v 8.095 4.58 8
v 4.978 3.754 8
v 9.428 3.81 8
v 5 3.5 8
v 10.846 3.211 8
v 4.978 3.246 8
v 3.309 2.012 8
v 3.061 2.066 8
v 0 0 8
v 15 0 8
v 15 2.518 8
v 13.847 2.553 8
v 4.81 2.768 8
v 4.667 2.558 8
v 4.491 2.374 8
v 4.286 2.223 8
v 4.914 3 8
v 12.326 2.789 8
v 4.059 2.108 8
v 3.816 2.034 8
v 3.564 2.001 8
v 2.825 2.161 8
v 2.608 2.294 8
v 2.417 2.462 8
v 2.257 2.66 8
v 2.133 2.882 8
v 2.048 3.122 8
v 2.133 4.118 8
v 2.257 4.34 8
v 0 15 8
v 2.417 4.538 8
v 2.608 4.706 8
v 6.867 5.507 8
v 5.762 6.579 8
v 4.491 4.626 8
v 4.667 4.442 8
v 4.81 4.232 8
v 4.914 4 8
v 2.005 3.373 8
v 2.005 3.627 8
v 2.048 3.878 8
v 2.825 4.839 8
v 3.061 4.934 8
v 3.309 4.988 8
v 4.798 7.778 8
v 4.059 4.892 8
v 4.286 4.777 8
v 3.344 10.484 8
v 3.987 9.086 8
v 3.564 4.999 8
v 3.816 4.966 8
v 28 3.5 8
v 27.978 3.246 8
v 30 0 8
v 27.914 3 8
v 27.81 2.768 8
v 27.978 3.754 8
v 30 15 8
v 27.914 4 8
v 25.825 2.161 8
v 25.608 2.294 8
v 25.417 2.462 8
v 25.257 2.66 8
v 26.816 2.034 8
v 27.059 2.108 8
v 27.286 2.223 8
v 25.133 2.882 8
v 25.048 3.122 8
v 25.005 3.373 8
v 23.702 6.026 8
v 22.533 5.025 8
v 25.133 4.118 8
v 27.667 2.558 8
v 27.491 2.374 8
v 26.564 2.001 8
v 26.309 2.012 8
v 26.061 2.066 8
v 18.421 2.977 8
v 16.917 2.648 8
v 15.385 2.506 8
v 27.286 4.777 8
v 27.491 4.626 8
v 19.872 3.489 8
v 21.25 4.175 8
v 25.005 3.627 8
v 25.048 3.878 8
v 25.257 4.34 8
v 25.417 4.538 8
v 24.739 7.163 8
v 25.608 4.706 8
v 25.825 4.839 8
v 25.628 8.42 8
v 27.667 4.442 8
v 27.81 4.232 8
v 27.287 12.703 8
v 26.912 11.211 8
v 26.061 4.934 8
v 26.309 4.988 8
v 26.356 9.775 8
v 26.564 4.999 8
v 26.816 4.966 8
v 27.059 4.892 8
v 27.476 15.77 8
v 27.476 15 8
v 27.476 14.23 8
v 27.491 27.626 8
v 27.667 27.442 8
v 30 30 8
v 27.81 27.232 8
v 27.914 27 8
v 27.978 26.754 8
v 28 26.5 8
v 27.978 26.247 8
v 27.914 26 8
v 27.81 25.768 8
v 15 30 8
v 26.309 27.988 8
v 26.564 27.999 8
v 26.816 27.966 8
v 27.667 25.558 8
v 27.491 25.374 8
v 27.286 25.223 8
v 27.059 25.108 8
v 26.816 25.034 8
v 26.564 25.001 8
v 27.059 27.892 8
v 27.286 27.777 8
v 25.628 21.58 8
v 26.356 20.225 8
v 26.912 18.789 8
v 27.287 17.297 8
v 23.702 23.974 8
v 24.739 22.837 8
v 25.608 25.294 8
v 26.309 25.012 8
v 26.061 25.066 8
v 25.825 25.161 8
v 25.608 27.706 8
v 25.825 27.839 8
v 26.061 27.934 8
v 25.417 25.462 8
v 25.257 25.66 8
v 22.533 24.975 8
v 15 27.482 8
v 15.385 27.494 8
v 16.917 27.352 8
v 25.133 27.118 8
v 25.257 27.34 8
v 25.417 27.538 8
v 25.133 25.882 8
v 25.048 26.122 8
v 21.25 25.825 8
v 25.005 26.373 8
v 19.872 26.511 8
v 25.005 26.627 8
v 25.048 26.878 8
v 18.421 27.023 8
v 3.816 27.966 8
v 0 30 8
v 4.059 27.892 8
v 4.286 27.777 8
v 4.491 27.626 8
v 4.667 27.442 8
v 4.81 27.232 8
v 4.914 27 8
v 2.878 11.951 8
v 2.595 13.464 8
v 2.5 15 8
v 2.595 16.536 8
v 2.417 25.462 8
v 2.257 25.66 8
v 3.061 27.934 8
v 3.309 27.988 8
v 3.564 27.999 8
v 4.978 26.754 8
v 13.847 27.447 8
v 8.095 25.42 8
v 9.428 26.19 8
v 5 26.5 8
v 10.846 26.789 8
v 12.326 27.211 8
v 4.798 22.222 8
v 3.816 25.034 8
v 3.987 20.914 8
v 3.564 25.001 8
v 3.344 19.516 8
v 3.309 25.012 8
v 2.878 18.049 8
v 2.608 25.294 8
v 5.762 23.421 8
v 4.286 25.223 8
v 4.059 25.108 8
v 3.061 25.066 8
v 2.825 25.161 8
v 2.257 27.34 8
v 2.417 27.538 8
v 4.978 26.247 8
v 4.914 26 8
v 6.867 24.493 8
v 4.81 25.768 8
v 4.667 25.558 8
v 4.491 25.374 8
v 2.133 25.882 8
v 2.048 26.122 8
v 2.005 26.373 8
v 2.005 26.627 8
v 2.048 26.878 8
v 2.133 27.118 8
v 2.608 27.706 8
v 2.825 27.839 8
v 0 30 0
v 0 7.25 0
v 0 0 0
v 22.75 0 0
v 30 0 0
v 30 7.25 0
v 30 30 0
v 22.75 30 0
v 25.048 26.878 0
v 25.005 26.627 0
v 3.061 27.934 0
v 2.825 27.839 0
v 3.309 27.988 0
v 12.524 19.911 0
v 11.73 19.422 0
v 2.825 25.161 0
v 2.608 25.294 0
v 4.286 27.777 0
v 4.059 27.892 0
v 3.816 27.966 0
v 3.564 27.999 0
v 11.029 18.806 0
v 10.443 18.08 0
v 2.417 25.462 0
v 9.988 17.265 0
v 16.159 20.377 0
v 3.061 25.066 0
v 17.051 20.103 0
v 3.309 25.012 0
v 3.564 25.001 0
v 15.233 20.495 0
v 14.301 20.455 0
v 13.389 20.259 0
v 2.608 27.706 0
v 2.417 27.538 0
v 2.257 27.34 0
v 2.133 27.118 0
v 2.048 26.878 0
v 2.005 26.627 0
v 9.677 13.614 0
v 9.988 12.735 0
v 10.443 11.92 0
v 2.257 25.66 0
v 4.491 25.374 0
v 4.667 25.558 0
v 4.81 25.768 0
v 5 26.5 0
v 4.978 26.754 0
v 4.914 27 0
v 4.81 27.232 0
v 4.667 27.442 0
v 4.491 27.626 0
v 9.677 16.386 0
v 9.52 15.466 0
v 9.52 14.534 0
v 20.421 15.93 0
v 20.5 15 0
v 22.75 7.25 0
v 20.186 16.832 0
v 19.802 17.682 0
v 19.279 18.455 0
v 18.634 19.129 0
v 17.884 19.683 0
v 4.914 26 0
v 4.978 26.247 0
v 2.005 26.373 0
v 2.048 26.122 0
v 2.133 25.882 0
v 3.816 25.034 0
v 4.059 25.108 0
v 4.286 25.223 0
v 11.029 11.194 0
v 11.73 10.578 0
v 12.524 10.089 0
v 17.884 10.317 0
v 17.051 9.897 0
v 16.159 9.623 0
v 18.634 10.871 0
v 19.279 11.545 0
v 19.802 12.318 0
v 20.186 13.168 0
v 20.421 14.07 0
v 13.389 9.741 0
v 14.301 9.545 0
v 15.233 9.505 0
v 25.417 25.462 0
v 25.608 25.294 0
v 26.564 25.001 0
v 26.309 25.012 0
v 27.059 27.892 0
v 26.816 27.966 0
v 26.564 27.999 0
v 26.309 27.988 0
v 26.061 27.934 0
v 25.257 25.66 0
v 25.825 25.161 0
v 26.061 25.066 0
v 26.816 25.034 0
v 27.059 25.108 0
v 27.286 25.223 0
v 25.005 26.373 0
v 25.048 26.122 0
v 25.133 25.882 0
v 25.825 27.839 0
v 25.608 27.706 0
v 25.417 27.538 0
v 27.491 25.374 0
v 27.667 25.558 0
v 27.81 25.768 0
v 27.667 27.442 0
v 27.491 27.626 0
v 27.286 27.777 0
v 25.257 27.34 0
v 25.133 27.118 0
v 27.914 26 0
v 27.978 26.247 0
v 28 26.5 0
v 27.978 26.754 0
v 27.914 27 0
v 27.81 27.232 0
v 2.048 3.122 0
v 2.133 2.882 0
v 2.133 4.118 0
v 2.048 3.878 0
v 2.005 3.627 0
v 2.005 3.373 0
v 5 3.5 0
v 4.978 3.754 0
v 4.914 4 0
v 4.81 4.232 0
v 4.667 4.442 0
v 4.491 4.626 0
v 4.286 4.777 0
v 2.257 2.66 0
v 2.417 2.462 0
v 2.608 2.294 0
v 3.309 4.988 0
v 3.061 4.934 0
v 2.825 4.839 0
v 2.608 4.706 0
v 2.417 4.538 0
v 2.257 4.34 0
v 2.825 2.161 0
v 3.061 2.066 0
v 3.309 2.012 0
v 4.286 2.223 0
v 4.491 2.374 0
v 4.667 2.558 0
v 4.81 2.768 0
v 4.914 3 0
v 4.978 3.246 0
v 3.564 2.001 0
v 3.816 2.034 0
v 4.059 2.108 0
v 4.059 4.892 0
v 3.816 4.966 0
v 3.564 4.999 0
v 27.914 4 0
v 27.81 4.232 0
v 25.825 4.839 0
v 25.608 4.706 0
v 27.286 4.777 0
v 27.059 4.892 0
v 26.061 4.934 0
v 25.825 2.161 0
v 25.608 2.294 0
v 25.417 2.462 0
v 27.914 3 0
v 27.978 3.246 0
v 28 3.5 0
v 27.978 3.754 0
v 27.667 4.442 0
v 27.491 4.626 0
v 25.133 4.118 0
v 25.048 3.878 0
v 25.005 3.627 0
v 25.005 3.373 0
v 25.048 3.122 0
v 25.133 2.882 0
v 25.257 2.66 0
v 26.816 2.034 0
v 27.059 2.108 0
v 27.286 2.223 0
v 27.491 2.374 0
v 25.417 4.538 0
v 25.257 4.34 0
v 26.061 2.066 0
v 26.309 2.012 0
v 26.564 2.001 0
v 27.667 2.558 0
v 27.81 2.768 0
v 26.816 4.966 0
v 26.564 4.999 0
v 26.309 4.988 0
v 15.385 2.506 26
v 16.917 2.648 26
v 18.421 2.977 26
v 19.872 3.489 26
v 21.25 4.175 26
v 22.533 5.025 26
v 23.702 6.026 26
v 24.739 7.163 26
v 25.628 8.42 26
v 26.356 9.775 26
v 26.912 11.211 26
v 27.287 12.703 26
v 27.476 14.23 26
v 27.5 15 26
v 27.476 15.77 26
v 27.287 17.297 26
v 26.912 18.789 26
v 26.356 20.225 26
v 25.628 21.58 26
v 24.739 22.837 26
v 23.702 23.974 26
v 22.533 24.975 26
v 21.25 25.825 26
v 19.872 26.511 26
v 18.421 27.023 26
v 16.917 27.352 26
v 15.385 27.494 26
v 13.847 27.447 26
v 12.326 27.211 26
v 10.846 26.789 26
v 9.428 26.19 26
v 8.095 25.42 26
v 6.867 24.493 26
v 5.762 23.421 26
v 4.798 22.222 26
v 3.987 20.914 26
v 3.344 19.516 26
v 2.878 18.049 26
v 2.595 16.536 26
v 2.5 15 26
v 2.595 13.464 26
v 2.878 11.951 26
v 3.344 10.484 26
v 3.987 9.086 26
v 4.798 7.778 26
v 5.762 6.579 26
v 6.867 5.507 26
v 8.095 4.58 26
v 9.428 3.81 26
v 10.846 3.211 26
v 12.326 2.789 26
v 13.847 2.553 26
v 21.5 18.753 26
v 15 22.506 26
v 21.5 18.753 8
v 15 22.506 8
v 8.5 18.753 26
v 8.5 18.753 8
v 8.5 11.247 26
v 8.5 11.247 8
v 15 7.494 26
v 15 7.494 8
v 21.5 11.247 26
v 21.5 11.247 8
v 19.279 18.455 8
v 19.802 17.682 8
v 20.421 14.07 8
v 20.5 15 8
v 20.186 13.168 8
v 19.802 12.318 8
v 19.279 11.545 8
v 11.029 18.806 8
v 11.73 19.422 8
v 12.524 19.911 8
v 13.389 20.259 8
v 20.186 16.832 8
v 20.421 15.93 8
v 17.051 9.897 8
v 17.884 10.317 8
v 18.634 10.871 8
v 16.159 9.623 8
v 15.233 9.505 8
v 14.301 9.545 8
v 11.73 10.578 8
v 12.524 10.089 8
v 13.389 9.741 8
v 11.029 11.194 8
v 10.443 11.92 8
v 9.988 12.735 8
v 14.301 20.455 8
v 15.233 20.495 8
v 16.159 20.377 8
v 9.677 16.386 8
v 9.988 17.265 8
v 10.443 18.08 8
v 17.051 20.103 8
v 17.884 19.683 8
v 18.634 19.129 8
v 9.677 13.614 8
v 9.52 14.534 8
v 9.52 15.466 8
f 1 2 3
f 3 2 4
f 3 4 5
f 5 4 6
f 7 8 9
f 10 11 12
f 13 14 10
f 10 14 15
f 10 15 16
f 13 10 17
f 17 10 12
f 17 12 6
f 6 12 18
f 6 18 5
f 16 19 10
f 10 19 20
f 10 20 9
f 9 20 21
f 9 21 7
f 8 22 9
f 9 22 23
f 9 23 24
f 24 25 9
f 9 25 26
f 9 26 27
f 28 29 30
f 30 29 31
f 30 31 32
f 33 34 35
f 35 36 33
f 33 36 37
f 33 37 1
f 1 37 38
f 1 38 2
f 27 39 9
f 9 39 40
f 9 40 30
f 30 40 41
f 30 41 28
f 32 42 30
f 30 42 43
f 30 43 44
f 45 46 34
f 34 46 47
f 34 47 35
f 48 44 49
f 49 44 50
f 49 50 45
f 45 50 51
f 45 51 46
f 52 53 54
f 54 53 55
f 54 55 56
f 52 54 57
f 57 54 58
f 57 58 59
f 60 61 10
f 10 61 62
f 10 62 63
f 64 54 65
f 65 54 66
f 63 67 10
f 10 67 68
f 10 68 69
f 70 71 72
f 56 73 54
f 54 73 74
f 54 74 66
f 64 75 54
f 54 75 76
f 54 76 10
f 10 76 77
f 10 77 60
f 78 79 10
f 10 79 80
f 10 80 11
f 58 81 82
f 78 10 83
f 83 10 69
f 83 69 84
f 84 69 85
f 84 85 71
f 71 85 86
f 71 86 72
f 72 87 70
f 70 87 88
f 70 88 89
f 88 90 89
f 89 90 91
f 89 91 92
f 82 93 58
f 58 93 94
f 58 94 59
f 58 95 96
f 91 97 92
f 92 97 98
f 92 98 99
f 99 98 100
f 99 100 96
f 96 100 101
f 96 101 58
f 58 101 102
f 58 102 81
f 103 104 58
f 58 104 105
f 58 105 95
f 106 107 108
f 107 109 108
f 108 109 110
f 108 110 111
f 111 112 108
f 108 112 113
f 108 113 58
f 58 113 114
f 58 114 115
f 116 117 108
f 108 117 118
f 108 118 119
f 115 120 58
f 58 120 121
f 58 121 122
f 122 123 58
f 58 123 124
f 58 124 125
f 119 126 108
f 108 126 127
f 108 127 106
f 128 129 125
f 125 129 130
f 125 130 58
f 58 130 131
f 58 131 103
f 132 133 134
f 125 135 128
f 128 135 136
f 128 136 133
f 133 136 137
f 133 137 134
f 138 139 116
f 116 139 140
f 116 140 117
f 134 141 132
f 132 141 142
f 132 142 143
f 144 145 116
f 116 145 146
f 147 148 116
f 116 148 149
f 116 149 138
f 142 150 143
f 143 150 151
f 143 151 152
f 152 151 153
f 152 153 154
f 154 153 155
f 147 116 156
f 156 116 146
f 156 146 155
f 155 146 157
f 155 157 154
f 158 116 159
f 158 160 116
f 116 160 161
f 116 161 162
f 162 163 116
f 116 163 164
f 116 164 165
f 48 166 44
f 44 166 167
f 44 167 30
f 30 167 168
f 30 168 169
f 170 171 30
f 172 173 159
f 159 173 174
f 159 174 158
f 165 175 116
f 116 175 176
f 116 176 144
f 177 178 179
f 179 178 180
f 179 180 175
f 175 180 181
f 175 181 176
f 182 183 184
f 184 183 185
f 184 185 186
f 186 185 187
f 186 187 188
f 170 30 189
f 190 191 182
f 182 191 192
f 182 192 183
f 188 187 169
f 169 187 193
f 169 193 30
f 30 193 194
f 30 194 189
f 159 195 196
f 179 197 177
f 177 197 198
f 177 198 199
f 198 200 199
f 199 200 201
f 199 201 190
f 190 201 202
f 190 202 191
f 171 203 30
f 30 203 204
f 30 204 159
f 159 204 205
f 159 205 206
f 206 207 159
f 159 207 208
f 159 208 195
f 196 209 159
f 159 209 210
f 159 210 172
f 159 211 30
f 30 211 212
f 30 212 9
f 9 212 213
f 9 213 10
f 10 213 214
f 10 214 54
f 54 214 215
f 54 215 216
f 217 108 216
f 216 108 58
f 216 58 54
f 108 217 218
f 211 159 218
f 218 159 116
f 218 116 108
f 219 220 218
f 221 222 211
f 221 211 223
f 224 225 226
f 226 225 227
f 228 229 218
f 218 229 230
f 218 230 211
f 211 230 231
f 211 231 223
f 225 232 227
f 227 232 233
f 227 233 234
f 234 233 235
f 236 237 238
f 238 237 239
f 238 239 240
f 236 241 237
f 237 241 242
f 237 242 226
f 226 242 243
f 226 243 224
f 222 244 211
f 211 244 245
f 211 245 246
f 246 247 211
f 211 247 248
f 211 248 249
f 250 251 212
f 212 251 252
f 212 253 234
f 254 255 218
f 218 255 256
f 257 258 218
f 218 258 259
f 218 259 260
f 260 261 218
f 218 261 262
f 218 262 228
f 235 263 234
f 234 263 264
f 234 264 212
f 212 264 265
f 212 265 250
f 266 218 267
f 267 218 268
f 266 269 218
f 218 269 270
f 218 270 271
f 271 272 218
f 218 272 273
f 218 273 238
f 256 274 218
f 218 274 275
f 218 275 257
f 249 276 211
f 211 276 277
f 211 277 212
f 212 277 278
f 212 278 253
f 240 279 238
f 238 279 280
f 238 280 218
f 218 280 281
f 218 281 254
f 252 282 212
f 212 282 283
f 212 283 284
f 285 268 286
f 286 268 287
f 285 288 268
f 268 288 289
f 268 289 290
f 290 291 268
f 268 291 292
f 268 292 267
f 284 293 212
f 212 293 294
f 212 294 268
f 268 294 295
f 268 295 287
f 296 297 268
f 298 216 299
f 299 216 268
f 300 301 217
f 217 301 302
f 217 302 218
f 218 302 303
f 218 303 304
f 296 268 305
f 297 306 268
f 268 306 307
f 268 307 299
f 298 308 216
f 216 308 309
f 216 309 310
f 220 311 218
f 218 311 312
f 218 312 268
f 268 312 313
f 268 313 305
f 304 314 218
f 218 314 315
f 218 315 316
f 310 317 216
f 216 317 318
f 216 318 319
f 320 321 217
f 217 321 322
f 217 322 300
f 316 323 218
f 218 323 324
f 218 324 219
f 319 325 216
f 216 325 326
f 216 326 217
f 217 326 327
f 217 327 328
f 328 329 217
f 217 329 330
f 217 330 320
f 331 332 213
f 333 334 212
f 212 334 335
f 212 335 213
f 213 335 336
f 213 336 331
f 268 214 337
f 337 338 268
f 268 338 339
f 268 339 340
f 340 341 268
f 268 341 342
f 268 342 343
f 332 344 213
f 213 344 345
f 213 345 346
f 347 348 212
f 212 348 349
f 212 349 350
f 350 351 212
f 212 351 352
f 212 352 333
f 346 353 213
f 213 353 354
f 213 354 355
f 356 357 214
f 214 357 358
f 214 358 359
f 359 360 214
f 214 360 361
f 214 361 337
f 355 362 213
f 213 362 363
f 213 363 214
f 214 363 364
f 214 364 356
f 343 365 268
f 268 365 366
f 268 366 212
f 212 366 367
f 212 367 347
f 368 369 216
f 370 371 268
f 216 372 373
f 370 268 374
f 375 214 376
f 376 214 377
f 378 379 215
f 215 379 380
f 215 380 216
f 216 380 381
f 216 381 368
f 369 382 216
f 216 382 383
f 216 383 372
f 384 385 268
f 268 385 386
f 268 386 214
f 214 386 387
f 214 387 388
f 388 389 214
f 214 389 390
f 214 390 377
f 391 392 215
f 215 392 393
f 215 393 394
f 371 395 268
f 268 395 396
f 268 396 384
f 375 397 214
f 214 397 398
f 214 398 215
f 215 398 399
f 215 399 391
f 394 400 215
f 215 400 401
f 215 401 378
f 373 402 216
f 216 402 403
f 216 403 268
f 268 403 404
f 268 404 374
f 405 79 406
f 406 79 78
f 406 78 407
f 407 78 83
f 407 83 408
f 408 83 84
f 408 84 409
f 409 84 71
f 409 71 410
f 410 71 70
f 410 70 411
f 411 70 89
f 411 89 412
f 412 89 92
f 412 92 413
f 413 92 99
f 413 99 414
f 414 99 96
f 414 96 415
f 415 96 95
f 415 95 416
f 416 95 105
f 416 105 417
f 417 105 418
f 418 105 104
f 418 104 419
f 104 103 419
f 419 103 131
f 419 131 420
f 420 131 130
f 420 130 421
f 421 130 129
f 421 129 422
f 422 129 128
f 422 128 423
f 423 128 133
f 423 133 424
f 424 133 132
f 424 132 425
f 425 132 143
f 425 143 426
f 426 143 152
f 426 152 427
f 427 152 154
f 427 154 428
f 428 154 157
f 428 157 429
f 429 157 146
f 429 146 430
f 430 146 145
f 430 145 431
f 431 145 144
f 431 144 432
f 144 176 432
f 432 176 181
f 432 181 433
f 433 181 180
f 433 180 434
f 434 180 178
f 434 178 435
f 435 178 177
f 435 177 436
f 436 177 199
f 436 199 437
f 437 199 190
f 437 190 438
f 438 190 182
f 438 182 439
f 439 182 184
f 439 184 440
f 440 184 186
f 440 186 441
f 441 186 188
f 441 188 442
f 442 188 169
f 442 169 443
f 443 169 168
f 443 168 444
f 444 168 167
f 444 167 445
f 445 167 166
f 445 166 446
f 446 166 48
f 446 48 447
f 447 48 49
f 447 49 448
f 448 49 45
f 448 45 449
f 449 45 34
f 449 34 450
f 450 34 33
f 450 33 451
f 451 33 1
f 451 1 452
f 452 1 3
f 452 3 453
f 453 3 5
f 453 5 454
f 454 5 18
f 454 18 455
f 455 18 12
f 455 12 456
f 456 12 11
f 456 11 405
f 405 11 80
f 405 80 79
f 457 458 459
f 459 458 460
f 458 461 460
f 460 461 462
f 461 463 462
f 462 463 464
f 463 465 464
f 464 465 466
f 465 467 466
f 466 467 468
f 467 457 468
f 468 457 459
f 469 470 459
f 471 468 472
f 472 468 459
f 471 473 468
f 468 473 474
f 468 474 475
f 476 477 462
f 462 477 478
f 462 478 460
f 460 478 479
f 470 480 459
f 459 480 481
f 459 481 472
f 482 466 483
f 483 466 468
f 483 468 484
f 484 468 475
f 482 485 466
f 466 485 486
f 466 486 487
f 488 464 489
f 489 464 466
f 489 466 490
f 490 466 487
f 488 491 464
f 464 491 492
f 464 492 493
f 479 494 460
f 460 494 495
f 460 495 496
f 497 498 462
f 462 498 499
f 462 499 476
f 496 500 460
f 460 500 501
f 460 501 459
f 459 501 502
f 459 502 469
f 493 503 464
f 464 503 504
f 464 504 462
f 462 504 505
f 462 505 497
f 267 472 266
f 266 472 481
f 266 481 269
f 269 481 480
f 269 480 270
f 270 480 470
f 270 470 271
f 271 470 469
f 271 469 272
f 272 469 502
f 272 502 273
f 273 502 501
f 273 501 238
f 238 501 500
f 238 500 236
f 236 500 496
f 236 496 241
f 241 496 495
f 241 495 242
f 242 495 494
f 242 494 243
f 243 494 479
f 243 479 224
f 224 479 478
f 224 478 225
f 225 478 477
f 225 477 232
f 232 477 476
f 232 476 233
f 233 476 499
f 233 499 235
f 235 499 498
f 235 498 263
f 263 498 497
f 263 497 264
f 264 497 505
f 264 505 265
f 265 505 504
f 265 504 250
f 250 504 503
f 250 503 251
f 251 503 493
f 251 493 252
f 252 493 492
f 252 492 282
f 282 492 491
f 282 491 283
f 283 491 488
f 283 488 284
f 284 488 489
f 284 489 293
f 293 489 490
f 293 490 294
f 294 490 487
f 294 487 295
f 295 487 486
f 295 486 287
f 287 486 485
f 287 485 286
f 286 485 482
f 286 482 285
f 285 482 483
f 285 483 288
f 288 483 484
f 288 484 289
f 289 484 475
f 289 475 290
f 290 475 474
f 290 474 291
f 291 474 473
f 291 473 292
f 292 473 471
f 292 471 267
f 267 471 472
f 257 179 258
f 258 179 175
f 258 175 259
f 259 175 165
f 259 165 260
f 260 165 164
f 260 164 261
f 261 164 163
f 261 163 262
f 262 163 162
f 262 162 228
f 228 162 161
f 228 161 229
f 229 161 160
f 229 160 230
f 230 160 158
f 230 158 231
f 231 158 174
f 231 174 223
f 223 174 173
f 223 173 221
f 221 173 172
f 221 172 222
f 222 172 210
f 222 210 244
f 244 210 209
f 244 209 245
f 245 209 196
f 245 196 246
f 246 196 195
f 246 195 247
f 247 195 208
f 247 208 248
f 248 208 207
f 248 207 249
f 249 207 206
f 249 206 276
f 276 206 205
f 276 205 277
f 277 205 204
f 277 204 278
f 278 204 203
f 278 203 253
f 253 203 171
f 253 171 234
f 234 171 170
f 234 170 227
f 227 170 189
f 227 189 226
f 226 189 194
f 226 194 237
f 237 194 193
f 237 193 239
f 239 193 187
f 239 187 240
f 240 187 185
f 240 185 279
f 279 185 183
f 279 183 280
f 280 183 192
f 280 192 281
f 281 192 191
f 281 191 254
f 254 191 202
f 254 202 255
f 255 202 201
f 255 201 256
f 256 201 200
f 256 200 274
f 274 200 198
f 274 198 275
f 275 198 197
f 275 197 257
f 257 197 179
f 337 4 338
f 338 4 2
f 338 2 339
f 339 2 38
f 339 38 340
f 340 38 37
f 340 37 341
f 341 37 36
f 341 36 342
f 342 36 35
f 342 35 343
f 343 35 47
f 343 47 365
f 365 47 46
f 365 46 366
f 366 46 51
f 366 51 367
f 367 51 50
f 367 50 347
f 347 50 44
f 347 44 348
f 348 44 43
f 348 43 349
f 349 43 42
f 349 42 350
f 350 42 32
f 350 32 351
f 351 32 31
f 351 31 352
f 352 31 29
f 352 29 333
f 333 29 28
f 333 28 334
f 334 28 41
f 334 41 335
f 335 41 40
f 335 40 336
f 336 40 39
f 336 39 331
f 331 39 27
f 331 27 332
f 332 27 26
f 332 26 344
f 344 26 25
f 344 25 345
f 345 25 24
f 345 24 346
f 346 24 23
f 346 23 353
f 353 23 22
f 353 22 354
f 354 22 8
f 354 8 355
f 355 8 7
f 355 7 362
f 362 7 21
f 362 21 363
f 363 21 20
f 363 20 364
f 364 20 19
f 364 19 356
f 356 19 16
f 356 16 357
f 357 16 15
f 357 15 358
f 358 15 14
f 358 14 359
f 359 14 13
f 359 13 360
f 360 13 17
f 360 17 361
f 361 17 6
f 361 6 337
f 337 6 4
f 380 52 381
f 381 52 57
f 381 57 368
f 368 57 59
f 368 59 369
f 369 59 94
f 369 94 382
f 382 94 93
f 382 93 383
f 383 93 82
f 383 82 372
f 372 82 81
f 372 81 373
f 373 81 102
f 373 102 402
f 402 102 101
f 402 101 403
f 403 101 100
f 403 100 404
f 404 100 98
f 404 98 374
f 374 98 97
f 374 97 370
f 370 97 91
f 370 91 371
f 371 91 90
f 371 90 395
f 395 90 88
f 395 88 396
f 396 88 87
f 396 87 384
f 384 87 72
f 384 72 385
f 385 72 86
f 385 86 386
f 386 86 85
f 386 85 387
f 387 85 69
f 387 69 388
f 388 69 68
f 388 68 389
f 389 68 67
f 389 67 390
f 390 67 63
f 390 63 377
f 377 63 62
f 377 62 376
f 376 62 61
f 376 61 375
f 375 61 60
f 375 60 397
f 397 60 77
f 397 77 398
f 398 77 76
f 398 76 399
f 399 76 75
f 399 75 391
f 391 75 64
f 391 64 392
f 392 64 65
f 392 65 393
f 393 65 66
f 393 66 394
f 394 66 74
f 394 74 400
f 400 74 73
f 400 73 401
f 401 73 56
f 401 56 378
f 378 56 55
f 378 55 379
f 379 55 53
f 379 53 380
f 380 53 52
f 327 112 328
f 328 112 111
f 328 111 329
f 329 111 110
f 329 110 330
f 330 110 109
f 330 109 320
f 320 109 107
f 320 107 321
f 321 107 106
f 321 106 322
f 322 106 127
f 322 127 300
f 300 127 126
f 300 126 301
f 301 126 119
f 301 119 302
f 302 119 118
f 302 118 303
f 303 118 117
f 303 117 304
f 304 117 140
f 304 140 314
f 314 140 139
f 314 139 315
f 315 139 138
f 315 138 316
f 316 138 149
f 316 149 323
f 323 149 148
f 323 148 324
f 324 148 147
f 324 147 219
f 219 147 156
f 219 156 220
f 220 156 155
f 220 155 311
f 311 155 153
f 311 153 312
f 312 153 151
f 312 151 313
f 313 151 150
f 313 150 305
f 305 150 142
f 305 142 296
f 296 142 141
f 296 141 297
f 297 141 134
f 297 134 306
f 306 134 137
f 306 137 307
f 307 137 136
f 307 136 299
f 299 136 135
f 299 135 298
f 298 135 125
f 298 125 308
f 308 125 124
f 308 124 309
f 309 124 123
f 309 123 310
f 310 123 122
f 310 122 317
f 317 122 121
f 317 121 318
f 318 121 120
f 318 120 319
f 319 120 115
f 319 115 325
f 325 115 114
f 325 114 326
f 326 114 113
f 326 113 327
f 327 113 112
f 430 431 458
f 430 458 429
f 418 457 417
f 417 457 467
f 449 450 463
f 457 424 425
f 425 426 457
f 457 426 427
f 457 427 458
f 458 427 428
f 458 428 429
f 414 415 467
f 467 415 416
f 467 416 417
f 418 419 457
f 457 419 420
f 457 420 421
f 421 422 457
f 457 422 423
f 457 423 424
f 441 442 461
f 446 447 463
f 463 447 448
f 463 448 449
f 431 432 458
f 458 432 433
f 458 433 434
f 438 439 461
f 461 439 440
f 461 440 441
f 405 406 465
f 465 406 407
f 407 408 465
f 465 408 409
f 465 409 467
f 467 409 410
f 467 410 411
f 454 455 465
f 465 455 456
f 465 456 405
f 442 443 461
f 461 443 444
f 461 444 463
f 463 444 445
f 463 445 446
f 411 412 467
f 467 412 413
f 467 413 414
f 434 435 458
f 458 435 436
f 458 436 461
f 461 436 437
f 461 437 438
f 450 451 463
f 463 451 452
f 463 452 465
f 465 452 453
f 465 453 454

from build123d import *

# Parameters (mm, degrees)
IZIM1_W                     = 30
IZIM1_H                     = 30
Y_KSEKLIK_EKSTR_ZYON1_DEPTH = 8
IZIM2_R                     = 12.5
Y_KSEKLIK_EKSTR_ZYON2_DEPTH = 8
IZIM3_R                     = 5.5
KES_EKSTR_ZYON1_DEPTH       = 8
IZIM4_R                     = 1.5
KES_EKSTR_ZYON2_DEPTH       = 8
IZIM5_R                     = 12.5
Y_KSEKLIK_EKSTR_ZYON3_DEPTH = 10


with BuildPart() as part:
    # Çizim1 → Yükseklik-Ekstrüzyon1 (new body)
    with BuildSketch(Plane.XY):
        with Locations((15, 15)):
            Rectangle(IZIM1_W, IZIM1_H)
    extrude(amount=Y_KSEKLIK_EKSTR_ZYON1_DEPTH)

    # Çizim2 → Yükseklik-Ekstrüzyon2 (add)
    with BuildSketch(Plane.XY.offset(8)):
        with Locations(Location((15, 15, 0), (0, 0, 180))):
            Circle(IZIM2_R)
        Polygon((15, 22.505553499), (8.5, 18.75277675), (8.5, 11.24722325), (15, 7.494446501), (21.5, 11.24722325), (21.5, 18.75277675), align=None, mode=Mode.SUBTRACT)
    extrude(amount=Y_KSEKLIK_EKSTR_ZYON2_DEPTH)

    # Çizim3 → Kes-Ekstrüzyon1 (cut)
    with BuildSketch(Plane.XY.offset(8)):
        with Locations((15, 15)):
            Circle(IZIM3_R)
    extrude(amount=-KES_EKSTR_ZYON1_DEPTH, mode=Mode.SUBTRACT)

    # Çizim4 → Kes-Ekstrüzyon2 (cut)
    with BuildSketch(Plane.XY.offset(8)):
        with Locations((3.5, 26.5)):
            Circle(IZIM4_R)
        with Locations((26.5, 26.5)):
            Circle(IZIM4_R)
        with Locations((26.5, 3.5)):
            Circle(IZIM4_R)
        with Locations((3.5, 3.5)):
            Circle(IZIM4_R)
    extrude(amount=-KES_EKSTR_ZYON2_DEPTH, mode=Mode.SUBTRACT)

    # Çizim5 → Yükseklik-Ekstrüzyon3 (add)
    with BuildSketch(Plane.XY.offset(16)):
        with Locations(Location((15, 15, 0), (0, 0, 180))):
            Circle(IZIM5_R)
        Polygon((15, 22.505553499), (8.5, 18.75277675), (8.5, 11.24722325), (15, 7.494446501), (21.5, 11.24722325), (21.5, 18.75277675), align=None, mode=Mode.SUBTRACT)
    extrude(amount=Y_KSEKLIK_EKSTR_ZYON3_DEPTH)


solid = part.part
